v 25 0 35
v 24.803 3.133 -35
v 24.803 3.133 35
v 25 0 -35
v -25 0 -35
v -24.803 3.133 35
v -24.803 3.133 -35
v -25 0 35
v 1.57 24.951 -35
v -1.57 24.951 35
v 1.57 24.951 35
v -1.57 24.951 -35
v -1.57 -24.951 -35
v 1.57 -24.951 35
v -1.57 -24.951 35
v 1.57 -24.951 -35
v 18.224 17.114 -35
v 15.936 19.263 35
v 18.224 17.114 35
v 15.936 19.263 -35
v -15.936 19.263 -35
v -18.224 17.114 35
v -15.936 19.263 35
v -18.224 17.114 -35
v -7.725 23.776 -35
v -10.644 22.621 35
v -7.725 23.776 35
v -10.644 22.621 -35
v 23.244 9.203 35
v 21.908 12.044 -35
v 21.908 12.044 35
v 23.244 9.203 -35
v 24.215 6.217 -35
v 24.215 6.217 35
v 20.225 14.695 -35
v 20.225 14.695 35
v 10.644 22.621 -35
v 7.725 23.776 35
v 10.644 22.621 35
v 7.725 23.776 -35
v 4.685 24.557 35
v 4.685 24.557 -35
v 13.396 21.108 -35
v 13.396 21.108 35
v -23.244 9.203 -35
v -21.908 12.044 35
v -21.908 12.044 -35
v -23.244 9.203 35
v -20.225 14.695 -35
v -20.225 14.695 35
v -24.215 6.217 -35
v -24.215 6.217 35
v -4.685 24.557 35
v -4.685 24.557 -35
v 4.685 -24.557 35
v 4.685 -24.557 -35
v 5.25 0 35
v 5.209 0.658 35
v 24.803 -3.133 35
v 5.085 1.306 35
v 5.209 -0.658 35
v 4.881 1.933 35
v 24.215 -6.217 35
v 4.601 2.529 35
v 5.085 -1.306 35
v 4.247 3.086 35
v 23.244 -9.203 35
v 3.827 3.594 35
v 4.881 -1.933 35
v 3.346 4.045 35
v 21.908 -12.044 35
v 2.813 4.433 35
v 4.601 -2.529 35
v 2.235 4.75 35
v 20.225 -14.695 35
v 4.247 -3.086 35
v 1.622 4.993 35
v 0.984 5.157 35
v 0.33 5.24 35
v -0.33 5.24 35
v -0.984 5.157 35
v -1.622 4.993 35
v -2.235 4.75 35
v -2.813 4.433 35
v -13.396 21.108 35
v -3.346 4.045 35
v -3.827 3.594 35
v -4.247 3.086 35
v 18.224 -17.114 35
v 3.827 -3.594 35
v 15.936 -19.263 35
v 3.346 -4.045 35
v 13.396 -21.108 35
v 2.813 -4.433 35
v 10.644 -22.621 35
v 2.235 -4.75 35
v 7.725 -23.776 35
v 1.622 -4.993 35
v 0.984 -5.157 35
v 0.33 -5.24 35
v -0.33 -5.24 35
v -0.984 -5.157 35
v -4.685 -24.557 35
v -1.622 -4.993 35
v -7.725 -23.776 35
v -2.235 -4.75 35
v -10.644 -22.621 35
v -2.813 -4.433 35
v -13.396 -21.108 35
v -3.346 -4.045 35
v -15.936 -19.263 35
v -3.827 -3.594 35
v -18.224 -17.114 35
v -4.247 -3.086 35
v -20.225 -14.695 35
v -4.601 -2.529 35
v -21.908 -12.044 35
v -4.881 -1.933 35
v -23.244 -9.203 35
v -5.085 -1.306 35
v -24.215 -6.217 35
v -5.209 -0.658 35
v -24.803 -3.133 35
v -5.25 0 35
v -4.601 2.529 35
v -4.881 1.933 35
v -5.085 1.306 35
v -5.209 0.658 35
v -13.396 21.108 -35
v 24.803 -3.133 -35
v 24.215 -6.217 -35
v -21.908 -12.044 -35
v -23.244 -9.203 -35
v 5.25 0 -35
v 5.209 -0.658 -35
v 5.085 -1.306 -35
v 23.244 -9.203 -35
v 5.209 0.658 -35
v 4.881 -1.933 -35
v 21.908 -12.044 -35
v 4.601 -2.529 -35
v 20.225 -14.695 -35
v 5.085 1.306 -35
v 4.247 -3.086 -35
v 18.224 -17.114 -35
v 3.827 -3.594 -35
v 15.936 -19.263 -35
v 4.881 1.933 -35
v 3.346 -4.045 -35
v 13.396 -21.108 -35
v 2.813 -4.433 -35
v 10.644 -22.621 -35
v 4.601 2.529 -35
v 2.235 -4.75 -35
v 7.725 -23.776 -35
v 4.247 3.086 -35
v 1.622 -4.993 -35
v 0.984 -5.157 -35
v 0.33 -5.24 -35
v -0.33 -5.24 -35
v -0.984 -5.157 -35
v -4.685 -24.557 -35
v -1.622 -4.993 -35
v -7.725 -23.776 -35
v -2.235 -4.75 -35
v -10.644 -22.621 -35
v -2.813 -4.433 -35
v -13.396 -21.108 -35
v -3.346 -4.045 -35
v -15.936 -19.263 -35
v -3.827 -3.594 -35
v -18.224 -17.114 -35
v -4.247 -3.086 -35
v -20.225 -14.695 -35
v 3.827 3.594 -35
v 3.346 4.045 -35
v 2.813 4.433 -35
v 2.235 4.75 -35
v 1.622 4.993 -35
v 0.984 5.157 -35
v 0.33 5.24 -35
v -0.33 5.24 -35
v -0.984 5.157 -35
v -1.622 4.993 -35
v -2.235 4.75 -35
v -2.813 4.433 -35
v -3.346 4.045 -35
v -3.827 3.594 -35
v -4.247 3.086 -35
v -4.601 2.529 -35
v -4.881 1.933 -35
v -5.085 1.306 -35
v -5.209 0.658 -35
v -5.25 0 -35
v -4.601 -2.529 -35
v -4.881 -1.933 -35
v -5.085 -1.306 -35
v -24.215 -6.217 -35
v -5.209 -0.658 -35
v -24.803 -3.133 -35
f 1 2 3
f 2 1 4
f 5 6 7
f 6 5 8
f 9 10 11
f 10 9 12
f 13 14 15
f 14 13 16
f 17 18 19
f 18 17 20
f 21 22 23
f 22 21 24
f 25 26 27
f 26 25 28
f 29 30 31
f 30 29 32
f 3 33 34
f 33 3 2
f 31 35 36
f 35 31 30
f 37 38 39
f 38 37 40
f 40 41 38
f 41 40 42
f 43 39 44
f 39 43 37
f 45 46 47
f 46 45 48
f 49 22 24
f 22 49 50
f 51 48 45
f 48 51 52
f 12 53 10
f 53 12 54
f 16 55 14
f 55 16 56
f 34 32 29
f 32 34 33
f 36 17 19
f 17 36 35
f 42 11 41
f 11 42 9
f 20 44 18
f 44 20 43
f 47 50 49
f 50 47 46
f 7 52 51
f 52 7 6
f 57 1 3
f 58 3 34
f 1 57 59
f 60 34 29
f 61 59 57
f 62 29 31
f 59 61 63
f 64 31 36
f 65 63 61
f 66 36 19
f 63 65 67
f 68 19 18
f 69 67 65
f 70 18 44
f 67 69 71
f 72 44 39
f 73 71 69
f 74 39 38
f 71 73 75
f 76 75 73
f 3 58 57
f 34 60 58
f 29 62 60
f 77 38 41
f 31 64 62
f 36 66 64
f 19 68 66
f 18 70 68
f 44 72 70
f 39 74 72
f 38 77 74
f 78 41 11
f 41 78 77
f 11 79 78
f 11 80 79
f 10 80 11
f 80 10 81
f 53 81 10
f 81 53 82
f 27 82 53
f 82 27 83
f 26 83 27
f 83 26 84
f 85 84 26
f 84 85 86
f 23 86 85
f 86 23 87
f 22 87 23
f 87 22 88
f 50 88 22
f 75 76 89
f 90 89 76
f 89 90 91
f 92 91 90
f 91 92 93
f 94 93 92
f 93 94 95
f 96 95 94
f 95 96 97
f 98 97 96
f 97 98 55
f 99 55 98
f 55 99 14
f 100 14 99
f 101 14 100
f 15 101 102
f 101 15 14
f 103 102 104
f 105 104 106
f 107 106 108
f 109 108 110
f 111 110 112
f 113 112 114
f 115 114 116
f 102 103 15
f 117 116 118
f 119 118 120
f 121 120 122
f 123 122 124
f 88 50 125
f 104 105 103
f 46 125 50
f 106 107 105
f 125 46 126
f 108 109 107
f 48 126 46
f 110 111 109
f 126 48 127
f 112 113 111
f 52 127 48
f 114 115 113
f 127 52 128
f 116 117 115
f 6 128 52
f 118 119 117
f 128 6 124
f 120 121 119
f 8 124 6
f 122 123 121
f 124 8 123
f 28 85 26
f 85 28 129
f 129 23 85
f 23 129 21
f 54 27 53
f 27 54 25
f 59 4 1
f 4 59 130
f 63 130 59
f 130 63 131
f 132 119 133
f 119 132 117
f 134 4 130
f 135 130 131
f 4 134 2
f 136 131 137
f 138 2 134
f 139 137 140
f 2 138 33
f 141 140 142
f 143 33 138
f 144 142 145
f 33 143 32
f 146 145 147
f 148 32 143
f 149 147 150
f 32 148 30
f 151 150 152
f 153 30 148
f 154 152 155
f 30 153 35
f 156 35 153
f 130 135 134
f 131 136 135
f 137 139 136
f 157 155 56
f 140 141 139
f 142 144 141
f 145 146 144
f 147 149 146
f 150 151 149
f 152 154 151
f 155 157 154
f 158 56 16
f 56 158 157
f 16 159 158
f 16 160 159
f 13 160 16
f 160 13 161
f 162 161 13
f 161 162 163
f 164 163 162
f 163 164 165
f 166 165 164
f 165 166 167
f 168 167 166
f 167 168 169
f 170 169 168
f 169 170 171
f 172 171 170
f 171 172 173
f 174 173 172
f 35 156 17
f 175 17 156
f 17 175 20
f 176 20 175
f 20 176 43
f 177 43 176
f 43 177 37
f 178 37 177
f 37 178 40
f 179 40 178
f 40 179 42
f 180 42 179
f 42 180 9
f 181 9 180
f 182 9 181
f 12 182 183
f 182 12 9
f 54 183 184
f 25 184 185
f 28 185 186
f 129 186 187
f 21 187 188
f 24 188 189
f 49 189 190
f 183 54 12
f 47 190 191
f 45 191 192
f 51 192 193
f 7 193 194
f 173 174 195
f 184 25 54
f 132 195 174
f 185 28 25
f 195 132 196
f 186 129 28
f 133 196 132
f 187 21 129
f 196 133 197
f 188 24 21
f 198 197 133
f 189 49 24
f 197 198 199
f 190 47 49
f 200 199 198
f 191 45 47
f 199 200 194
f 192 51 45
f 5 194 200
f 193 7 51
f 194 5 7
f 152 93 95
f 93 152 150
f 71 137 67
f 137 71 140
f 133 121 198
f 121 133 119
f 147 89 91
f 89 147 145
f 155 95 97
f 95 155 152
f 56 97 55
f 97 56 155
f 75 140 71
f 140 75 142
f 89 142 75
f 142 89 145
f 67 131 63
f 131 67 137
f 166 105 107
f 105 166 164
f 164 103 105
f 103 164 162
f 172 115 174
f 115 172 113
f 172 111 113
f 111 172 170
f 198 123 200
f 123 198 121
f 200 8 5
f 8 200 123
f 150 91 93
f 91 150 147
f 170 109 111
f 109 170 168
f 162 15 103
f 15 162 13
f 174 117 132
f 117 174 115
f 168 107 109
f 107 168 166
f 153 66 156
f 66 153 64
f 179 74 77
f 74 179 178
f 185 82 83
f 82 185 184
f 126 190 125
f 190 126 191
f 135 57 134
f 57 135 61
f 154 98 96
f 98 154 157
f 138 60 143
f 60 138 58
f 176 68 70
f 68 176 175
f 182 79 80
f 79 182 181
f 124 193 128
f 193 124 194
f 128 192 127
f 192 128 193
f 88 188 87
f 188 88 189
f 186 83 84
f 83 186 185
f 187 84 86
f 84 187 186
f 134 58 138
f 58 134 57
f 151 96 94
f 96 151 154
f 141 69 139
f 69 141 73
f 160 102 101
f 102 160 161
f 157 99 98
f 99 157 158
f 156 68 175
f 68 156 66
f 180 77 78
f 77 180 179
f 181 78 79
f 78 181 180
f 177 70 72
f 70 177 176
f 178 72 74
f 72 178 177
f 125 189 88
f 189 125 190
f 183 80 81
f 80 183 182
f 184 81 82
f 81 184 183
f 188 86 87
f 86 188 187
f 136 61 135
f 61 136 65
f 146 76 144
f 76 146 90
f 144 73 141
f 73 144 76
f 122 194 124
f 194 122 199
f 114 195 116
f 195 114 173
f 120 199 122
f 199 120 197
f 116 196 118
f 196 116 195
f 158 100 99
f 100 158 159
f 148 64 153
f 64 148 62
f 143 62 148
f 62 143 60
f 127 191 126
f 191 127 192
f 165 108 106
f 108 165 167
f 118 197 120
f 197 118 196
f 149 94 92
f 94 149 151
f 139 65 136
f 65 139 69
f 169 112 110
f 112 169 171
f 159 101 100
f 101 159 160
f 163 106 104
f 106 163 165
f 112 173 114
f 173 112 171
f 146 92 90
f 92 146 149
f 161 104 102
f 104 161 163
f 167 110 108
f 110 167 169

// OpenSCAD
$fn = 50;


difference() {
	union() {
		translate(v = [0, 0, -35.0000000000]) {
			cylinder(h = 70, r = 25.0000000000);
		}
	}
	union() {
		translate(v = [0, 0, -100.0000000000]) {
			cylinder(h = 200, r = 5.2500000000);
		}
	}
}
